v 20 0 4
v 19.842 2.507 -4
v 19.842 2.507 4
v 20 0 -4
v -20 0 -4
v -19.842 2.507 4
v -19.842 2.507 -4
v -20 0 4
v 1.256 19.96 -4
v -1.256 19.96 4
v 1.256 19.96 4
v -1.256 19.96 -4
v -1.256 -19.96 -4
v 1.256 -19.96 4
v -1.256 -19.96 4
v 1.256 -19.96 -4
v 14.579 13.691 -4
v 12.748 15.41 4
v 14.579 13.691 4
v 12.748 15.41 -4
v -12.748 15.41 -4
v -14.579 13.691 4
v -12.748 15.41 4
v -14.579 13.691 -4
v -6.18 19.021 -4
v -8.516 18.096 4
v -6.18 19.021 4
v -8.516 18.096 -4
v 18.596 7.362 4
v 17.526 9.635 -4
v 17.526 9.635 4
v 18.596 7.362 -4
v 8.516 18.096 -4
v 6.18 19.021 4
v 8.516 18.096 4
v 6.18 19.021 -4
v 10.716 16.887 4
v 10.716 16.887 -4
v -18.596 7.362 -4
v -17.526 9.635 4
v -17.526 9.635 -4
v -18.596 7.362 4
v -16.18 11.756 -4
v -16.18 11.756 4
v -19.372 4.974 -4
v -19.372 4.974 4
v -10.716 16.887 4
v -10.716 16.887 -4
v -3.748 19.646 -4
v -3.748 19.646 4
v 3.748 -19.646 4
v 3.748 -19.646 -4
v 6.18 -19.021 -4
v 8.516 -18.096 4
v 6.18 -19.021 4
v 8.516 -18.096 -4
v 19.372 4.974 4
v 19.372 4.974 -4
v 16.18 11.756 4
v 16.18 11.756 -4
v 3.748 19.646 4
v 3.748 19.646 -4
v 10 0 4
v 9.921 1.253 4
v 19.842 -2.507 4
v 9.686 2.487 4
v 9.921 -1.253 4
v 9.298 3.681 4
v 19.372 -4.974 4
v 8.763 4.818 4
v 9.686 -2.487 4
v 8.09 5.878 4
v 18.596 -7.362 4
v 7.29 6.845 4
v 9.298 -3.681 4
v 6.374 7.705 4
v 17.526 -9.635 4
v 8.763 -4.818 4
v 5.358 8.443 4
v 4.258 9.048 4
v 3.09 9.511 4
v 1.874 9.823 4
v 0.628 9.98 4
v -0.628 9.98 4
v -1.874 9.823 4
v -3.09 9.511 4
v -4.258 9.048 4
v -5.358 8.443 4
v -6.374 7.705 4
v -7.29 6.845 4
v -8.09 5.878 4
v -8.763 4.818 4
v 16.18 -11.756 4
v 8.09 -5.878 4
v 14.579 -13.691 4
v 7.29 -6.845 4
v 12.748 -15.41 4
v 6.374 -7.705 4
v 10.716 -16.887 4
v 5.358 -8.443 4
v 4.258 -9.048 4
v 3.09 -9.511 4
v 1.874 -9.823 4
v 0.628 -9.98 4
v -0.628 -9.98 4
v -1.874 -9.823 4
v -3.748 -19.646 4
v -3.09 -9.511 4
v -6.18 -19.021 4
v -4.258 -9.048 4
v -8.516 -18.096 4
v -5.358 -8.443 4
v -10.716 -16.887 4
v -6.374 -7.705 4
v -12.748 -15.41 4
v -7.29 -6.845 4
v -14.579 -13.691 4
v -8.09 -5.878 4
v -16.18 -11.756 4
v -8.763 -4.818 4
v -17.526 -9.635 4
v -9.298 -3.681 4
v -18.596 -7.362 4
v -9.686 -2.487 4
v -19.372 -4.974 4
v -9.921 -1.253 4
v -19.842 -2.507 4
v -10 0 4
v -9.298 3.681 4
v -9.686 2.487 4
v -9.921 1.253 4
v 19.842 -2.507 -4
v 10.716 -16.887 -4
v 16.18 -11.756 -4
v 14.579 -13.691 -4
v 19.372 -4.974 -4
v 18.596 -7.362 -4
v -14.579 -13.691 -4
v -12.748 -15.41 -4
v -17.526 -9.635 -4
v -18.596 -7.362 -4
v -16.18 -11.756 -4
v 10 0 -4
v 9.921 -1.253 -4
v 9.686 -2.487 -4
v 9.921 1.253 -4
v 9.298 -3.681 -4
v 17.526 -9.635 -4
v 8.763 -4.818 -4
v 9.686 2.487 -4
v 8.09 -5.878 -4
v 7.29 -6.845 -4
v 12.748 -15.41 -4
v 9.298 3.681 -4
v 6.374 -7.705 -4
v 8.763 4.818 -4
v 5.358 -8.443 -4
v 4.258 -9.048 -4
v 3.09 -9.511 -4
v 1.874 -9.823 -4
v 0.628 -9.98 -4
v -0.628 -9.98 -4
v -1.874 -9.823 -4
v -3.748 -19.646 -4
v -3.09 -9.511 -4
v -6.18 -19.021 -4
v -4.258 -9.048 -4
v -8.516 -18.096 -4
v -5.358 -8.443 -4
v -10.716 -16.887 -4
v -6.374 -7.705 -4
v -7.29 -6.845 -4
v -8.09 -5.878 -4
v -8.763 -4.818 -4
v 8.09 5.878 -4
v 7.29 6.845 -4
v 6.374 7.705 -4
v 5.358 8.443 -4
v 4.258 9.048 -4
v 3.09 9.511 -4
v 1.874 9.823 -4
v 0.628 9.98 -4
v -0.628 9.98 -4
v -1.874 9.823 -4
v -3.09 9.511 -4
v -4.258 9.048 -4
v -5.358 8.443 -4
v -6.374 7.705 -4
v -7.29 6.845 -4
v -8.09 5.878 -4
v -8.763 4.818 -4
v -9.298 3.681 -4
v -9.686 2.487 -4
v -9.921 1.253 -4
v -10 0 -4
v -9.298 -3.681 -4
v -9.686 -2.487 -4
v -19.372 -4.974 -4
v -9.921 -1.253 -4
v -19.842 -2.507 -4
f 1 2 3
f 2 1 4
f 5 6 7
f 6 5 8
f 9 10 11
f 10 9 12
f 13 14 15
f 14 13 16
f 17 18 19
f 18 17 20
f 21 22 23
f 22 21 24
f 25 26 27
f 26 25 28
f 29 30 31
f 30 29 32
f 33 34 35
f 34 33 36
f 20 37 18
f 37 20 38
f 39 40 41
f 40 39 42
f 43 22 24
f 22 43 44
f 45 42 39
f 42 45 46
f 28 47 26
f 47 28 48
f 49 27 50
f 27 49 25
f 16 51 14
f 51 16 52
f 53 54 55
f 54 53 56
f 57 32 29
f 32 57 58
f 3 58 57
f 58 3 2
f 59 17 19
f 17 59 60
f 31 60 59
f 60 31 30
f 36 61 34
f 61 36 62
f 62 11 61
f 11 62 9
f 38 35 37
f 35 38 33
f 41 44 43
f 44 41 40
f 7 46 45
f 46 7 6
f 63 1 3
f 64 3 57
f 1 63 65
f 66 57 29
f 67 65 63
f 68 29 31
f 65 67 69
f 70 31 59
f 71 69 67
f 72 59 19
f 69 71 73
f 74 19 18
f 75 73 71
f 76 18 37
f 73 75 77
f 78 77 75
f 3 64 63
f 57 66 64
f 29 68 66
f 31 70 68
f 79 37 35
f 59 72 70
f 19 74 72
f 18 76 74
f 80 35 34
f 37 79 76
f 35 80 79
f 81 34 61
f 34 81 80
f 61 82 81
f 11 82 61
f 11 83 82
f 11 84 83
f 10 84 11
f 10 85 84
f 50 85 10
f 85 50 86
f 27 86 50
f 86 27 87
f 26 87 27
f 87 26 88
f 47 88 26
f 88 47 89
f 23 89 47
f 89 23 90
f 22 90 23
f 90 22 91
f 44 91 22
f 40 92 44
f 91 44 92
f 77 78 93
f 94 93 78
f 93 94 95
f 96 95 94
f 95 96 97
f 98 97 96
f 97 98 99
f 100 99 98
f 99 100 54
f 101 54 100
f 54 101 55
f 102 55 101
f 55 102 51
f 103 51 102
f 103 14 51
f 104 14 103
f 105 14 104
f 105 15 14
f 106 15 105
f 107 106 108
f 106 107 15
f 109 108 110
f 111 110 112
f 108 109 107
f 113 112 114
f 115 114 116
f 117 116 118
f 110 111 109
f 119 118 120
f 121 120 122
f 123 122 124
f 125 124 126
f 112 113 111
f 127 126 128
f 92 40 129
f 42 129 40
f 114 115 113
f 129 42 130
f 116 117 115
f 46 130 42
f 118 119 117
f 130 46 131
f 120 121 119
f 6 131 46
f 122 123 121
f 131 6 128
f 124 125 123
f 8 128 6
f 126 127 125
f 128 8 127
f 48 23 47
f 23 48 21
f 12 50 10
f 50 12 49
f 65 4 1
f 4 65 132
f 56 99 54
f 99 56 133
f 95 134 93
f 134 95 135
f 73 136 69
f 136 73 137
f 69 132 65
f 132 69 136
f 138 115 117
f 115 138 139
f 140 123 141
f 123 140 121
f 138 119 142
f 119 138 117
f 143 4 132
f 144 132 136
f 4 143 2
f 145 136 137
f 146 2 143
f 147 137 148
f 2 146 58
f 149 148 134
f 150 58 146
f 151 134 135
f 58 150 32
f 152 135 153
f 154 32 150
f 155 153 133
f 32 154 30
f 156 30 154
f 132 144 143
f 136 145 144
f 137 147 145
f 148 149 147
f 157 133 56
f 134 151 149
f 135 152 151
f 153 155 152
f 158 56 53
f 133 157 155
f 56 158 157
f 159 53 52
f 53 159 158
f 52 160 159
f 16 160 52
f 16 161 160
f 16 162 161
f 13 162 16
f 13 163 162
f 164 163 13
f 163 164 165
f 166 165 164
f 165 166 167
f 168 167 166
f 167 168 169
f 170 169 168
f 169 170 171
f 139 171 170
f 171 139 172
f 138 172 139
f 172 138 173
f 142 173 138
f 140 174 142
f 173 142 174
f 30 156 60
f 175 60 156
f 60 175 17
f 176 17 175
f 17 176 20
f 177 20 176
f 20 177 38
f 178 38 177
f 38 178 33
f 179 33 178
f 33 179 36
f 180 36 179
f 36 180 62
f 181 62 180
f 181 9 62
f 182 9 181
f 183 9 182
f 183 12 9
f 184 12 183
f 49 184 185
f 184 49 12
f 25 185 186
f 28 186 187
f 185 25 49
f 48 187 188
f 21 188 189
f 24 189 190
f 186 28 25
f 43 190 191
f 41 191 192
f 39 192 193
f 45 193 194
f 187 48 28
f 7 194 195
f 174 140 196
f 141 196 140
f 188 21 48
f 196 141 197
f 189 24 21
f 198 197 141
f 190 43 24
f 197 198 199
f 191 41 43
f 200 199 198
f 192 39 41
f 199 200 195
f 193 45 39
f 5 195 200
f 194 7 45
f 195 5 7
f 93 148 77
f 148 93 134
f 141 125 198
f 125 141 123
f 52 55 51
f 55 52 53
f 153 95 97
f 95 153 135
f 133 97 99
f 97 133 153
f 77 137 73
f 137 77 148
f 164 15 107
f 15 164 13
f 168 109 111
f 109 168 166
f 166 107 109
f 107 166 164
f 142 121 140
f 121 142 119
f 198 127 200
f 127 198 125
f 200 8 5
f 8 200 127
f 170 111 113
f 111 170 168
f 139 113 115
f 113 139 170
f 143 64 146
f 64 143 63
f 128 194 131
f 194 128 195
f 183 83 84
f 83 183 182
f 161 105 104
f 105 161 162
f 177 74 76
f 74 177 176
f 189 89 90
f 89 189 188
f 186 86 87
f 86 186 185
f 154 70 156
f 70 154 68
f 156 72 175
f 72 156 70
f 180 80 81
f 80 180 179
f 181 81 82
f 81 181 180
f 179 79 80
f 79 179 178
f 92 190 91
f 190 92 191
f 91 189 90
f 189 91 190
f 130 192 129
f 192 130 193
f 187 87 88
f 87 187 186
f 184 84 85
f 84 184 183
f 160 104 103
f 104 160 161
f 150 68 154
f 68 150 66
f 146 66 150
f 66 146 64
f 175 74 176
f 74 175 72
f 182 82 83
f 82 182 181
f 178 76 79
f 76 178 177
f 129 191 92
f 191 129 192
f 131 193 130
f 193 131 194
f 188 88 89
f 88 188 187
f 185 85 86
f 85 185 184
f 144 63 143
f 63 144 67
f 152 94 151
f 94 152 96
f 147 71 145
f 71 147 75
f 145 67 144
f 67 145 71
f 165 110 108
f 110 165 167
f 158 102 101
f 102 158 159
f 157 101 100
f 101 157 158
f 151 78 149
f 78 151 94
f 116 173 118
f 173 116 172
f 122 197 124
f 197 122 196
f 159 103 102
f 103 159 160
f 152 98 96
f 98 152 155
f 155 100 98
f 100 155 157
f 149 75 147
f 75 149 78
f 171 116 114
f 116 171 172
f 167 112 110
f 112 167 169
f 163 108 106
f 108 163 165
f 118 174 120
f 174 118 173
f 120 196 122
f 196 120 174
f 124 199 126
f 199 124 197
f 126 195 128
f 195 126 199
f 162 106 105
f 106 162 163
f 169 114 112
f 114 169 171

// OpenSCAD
$fn = 50;


difference() {
	union() {
		translate(v = [0, 0, -4.0000000000]) {
			cylinder(h = 8, r = 20.0000000000);
		}
	}
	union() {
		translate(v = [0, 0, -100.0000000000]) {
			cylinder(h = 200, r = 10);
		}
	}
}
